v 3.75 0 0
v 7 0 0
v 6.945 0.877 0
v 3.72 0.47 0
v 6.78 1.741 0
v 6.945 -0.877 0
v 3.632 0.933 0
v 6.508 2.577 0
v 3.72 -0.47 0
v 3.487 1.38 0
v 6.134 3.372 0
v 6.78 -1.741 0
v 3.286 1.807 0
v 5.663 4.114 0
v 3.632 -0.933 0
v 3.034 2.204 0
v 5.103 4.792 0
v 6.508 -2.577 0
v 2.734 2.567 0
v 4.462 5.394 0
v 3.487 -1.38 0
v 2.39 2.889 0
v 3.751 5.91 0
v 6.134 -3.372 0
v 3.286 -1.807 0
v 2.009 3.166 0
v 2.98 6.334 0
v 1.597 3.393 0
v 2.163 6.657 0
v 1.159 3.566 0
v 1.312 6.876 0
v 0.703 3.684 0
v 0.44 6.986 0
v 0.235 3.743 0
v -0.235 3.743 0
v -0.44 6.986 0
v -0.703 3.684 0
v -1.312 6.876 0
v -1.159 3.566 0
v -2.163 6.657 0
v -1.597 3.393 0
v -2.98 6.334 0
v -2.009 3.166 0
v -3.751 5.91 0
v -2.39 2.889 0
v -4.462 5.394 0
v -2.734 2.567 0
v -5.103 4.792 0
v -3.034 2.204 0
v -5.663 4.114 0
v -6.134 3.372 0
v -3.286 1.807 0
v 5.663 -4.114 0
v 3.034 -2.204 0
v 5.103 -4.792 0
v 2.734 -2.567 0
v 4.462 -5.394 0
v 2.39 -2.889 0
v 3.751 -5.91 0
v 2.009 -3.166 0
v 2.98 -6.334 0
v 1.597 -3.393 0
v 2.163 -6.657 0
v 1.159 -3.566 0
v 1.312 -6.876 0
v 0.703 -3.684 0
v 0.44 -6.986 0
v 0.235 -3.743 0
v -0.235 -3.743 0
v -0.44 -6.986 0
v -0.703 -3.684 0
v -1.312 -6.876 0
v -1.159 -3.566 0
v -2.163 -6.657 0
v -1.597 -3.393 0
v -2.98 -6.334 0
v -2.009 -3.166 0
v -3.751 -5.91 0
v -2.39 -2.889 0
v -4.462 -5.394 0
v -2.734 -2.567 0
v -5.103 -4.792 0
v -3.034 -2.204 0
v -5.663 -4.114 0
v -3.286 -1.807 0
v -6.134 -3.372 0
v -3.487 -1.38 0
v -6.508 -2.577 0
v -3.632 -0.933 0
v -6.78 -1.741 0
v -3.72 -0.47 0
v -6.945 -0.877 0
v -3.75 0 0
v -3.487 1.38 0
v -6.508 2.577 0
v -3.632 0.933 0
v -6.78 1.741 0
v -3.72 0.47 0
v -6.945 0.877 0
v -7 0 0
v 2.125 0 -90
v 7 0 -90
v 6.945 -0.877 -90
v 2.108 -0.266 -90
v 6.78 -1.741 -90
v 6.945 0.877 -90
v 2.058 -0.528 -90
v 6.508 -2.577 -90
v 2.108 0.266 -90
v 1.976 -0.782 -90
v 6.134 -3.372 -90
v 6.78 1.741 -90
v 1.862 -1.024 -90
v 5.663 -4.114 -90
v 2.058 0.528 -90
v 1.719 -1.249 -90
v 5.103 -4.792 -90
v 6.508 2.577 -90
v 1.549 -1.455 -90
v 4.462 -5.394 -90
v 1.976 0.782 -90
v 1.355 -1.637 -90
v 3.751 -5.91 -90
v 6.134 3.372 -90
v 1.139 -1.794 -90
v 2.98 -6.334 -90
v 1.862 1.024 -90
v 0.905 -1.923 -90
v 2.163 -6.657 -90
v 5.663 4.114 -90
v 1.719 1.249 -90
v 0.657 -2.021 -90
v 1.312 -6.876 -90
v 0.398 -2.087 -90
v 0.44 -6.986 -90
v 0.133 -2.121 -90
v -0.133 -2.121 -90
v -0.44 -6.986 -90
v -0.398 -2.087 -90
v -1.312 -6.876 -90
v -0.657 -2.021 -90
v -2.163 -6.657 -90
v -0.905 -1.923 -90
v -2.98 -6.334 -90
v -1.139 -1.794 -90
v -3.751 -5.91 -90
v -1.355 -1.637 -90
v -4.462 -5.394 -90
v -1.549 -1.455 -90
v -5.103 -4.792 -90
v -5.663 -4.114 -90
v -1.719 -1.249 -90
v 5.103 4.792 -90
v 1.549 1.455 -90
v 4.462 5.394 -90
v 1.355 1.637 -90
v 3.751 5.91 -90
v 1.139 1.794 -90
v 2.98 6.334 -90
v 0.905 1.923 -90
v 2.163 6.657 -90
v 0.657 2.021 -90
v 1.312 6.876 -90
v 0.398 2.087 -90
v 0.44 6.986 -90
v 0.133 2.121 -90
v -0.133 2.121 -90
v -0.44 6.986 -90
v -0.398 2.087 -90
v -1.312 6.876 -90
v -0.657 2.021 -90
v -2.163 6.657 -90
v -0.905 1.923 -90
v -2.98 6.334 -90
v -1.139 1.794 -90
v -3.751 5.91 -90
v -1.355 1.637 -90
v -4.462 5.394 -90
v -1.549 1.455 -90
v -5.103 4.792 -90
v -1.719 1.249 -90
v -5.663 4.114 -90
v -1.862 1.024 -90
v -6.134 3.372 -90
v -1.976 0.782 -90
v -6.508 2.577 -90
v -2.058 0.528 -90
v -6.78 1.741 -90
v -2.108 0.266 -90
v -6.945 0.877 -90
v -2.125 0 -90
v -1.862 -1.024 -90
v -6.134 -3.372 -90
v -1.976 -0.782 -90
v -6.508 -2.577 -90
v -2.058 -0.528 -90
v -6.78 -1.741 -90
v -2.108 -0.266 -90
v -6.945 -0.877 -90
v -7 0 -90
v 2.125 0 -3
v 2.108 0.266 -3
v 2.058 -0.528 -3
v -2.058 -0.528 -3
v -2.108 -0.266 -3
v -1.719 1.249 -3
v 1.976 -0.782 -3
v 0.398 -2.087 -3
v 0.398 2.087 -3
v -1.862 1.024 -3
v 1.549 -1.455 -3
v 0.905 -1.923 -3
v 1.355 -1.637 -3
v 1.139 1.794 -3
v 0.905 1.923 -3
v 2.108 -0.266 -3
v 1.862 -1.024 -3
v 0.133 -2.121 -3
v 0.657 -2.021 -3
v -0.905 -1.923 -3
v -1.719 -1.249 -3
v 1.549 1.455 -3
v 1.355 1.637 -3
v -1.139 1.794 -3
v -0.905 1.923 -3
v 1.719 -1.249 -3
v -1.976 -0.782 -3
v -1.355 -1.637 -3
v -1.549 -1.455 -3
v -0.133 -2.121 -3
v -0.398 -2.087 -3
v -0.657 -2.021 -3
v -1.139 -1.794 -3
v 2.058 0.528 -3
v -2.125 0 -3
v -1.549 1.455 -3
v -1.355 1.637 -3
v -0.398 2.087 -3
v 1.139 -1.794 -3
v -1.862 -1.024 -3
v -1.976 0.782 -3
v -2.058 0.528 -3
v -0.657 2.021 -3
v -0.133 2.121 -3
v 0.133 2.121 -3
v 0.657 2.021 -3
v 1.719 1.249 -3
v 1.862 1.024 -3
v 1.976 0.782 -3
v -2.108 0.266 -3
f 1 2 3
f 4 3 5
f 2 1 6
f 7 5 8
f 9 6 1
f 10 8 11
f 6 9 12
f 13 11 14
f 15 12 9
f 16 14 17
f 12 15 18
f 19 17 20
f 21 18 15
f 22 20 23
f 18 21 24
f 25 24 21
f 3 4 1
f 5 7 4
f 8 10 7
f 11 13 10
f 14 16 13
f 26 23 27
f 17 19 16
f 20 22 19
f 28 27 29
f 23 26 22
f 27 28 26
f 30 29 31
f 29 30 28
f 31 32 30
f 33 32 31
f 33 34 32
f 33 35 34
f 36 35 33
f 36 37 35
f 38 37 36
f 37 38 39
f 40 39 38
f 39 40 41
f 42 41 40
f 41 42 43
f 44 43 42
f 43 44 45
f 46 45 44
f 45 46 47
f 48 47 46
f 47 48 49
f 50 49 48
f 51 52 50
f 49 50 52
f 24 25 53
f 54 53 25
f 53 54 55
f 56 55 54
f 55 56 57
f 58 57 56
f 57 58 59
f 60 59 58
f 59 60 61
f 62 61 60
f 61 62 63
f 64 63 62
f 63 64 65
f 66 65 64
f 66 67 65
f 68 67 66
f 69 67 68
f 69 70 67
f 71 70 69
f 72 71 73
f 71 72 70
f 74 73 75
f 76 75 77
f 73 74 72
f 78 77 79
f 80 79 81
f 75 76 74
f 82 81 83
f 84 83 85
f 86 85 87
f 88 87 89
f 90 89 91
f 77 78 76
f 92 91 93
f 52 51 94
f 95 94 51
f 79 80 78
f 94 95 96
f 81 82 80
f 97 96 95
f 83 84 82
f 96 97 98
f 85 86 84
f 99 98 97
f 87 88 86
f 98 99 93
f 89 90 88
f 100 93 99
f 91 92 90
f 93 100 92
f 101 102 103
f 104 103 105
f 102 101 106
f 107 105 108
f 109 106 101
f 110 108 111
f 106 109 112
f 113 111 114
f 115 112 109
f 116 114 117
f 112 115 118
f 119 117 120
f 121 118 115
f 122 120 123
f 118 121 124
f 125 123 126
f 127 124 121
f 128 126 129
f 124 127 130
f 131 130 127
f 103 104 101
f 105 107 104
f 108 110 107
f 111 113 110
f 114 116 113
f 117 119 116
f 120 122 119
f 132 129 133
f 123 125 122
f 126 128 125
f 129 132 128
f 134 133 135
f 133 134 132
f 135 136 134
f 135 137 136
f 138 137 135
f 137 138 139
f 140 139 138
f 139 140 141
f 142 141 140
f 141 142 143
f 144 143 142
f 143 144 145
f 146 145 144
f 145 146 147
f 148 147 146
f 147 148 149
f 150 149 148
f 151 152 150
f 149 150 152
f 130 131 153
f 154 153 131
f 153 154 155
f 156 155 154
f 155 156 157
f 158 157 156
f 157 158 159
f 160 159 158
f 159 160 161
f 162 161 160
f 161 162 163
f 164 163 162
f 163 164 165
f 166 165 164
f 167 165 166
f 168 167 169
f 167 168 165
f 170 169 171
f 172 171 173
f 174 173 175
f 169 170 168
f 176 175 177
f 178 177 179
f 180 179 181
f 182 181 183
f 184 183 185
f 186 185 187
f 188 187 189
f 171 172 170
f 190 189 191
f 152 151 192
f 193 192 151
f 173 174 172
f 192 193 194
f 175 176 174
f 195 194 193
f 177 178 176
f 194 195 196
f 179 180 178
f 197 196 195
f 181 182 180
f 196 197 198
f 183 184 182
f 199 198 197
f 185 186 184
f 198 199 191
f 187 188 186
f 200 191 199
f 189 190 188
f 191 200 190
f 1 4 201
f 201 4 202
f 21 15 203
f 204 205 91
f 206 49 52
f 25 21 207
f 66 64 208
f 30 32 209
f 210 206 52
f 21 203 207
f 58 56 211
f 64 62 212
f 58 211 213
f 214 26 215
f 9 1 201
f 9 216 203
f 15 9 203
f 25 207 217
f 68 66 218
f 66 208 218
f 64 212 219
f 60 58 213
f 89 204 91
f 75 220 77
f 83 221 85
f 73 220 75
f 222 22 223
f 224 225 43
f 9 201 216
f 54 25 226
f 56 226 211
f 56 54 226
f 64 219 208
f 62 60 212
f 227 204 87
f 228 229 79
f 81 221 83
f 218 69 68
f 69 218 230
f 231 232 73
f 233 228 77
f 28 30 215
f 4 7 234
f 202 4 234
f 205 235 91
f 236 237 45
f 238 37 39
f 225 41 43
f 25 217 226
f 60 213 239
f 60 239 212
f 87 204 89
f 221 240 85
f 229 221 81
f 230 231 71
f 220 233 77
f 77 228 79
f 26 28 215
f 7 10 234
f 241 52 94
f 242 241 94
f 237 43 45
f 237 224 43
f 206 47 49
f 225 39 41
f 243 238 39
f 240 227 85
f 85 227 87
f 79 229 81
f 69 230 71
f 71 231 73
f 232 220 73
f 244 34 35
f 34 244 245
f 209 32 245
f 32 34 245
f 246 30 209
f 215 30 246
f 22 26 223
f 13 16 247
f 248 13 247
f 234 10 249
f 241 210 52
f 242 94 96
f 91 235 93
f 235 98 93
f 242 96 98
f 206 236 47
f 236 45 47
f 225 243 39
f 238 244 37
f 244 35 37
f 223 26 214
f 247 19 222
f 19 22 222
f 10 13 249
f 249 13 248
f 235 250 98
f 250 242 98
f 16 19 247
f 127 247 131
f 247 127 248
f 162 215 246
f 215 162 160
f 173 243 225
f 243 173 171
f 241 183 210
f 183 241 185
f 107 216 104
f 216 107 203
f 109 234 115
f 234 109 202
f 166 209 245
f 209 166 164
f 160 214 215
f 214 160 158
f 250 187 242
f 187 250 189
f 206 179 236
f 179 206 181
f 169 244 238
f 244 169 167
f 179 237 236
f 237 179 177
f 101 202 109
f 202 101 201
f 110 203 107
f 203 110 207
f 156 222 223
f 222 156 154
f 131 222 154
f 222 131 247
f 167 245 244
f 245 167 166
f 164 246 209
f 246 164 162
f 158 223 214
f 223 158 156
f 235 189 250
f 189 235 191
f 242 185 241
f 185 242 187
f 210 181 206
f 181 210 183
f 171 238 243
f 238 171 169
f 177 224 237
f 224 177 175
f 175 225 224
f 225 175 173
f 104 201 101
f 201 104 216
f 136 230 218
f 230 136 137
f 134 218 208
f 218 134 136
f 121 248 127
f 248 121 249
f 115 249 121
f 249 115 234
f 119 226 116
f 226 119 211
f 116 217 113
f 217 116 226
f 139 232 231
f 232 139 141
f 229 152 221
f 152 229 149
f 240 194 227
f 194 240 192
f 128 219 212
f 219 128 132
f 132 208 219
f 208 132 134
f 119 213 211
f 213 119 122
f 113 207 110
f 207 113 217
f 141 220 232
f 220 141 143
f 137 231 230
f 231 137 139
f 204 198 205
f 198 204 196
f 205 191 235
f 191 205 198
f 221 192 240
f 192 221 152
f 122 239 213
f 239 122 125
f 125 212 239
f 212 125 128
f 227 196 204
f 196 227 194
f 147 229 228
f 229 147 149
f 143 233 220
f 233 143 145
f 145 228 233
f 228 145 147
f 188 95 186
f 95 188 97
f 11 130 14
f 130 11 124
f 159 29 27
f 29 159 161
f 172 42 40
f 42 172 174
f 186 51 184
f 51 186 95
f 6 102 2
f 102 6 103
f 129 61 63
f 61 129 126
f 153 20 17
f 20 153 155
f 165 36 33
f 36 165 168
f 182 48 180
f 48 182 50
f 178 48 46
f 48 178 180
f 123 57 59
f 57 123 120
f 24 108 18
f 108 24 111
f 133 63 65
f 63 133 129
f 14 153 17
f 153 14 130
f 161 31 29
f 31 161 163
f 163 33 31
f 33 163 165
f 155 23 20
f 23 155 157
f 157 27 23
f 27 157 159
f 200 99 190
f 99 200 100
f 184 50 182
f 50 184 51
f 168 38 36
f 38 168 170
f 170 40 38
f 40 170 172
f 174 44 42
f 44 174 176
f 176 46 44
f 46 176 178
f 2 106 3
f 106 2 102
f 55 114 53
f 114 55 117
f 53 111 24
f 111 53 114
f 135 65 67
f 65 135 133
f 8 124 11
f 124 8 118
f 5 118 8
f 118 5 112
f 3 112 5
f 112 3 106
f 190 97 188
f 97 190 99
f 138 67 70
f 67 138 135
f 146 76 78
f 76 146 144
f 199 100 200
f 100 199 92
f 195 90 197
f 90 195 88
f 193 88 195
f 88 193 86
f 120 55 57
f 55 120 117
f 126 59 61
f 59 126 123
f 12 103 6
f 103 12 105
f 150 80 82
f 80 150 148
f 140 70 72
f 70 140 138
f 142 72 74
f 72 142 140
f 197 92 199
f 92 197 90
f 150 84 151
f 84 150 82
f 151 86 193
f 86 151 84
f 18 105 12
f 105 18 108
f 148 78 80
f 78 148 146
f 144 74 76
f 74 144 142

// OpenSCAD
$fn = 50;


difference() {
	union() {
		translate(v = [0, 0, -90.0000000000]) {
			cylinder(h = 90, r = 7.0000000000);
		}
	}
	union() {
		translate(v = [0, 0, 0]) {
			rotate(a = [0, 0, 0]) {
				difference() {
					union() {
						#translate(v = [0, 0, -90.0000000000]) {
							cylinder(h = 90, r = 2.0000000000);
						}
						#translate(v = [0, 0, -3]) {
							cylinder(h = 3, r = 7.0000000000, r1 = 2.1250000000, r2 = 3.7500000000);
						}
						#translate(v = [0, 0, -90.0000000000]) {
							cylinder(h = 90, r = 2.1250000000);
						}
						#translate(v = [0, 0, -90.0000000000]) {
							cylinder(h = 90, r = 2.0000000000);
						}
					}
					union();
				}
			}
		}
	}
}
